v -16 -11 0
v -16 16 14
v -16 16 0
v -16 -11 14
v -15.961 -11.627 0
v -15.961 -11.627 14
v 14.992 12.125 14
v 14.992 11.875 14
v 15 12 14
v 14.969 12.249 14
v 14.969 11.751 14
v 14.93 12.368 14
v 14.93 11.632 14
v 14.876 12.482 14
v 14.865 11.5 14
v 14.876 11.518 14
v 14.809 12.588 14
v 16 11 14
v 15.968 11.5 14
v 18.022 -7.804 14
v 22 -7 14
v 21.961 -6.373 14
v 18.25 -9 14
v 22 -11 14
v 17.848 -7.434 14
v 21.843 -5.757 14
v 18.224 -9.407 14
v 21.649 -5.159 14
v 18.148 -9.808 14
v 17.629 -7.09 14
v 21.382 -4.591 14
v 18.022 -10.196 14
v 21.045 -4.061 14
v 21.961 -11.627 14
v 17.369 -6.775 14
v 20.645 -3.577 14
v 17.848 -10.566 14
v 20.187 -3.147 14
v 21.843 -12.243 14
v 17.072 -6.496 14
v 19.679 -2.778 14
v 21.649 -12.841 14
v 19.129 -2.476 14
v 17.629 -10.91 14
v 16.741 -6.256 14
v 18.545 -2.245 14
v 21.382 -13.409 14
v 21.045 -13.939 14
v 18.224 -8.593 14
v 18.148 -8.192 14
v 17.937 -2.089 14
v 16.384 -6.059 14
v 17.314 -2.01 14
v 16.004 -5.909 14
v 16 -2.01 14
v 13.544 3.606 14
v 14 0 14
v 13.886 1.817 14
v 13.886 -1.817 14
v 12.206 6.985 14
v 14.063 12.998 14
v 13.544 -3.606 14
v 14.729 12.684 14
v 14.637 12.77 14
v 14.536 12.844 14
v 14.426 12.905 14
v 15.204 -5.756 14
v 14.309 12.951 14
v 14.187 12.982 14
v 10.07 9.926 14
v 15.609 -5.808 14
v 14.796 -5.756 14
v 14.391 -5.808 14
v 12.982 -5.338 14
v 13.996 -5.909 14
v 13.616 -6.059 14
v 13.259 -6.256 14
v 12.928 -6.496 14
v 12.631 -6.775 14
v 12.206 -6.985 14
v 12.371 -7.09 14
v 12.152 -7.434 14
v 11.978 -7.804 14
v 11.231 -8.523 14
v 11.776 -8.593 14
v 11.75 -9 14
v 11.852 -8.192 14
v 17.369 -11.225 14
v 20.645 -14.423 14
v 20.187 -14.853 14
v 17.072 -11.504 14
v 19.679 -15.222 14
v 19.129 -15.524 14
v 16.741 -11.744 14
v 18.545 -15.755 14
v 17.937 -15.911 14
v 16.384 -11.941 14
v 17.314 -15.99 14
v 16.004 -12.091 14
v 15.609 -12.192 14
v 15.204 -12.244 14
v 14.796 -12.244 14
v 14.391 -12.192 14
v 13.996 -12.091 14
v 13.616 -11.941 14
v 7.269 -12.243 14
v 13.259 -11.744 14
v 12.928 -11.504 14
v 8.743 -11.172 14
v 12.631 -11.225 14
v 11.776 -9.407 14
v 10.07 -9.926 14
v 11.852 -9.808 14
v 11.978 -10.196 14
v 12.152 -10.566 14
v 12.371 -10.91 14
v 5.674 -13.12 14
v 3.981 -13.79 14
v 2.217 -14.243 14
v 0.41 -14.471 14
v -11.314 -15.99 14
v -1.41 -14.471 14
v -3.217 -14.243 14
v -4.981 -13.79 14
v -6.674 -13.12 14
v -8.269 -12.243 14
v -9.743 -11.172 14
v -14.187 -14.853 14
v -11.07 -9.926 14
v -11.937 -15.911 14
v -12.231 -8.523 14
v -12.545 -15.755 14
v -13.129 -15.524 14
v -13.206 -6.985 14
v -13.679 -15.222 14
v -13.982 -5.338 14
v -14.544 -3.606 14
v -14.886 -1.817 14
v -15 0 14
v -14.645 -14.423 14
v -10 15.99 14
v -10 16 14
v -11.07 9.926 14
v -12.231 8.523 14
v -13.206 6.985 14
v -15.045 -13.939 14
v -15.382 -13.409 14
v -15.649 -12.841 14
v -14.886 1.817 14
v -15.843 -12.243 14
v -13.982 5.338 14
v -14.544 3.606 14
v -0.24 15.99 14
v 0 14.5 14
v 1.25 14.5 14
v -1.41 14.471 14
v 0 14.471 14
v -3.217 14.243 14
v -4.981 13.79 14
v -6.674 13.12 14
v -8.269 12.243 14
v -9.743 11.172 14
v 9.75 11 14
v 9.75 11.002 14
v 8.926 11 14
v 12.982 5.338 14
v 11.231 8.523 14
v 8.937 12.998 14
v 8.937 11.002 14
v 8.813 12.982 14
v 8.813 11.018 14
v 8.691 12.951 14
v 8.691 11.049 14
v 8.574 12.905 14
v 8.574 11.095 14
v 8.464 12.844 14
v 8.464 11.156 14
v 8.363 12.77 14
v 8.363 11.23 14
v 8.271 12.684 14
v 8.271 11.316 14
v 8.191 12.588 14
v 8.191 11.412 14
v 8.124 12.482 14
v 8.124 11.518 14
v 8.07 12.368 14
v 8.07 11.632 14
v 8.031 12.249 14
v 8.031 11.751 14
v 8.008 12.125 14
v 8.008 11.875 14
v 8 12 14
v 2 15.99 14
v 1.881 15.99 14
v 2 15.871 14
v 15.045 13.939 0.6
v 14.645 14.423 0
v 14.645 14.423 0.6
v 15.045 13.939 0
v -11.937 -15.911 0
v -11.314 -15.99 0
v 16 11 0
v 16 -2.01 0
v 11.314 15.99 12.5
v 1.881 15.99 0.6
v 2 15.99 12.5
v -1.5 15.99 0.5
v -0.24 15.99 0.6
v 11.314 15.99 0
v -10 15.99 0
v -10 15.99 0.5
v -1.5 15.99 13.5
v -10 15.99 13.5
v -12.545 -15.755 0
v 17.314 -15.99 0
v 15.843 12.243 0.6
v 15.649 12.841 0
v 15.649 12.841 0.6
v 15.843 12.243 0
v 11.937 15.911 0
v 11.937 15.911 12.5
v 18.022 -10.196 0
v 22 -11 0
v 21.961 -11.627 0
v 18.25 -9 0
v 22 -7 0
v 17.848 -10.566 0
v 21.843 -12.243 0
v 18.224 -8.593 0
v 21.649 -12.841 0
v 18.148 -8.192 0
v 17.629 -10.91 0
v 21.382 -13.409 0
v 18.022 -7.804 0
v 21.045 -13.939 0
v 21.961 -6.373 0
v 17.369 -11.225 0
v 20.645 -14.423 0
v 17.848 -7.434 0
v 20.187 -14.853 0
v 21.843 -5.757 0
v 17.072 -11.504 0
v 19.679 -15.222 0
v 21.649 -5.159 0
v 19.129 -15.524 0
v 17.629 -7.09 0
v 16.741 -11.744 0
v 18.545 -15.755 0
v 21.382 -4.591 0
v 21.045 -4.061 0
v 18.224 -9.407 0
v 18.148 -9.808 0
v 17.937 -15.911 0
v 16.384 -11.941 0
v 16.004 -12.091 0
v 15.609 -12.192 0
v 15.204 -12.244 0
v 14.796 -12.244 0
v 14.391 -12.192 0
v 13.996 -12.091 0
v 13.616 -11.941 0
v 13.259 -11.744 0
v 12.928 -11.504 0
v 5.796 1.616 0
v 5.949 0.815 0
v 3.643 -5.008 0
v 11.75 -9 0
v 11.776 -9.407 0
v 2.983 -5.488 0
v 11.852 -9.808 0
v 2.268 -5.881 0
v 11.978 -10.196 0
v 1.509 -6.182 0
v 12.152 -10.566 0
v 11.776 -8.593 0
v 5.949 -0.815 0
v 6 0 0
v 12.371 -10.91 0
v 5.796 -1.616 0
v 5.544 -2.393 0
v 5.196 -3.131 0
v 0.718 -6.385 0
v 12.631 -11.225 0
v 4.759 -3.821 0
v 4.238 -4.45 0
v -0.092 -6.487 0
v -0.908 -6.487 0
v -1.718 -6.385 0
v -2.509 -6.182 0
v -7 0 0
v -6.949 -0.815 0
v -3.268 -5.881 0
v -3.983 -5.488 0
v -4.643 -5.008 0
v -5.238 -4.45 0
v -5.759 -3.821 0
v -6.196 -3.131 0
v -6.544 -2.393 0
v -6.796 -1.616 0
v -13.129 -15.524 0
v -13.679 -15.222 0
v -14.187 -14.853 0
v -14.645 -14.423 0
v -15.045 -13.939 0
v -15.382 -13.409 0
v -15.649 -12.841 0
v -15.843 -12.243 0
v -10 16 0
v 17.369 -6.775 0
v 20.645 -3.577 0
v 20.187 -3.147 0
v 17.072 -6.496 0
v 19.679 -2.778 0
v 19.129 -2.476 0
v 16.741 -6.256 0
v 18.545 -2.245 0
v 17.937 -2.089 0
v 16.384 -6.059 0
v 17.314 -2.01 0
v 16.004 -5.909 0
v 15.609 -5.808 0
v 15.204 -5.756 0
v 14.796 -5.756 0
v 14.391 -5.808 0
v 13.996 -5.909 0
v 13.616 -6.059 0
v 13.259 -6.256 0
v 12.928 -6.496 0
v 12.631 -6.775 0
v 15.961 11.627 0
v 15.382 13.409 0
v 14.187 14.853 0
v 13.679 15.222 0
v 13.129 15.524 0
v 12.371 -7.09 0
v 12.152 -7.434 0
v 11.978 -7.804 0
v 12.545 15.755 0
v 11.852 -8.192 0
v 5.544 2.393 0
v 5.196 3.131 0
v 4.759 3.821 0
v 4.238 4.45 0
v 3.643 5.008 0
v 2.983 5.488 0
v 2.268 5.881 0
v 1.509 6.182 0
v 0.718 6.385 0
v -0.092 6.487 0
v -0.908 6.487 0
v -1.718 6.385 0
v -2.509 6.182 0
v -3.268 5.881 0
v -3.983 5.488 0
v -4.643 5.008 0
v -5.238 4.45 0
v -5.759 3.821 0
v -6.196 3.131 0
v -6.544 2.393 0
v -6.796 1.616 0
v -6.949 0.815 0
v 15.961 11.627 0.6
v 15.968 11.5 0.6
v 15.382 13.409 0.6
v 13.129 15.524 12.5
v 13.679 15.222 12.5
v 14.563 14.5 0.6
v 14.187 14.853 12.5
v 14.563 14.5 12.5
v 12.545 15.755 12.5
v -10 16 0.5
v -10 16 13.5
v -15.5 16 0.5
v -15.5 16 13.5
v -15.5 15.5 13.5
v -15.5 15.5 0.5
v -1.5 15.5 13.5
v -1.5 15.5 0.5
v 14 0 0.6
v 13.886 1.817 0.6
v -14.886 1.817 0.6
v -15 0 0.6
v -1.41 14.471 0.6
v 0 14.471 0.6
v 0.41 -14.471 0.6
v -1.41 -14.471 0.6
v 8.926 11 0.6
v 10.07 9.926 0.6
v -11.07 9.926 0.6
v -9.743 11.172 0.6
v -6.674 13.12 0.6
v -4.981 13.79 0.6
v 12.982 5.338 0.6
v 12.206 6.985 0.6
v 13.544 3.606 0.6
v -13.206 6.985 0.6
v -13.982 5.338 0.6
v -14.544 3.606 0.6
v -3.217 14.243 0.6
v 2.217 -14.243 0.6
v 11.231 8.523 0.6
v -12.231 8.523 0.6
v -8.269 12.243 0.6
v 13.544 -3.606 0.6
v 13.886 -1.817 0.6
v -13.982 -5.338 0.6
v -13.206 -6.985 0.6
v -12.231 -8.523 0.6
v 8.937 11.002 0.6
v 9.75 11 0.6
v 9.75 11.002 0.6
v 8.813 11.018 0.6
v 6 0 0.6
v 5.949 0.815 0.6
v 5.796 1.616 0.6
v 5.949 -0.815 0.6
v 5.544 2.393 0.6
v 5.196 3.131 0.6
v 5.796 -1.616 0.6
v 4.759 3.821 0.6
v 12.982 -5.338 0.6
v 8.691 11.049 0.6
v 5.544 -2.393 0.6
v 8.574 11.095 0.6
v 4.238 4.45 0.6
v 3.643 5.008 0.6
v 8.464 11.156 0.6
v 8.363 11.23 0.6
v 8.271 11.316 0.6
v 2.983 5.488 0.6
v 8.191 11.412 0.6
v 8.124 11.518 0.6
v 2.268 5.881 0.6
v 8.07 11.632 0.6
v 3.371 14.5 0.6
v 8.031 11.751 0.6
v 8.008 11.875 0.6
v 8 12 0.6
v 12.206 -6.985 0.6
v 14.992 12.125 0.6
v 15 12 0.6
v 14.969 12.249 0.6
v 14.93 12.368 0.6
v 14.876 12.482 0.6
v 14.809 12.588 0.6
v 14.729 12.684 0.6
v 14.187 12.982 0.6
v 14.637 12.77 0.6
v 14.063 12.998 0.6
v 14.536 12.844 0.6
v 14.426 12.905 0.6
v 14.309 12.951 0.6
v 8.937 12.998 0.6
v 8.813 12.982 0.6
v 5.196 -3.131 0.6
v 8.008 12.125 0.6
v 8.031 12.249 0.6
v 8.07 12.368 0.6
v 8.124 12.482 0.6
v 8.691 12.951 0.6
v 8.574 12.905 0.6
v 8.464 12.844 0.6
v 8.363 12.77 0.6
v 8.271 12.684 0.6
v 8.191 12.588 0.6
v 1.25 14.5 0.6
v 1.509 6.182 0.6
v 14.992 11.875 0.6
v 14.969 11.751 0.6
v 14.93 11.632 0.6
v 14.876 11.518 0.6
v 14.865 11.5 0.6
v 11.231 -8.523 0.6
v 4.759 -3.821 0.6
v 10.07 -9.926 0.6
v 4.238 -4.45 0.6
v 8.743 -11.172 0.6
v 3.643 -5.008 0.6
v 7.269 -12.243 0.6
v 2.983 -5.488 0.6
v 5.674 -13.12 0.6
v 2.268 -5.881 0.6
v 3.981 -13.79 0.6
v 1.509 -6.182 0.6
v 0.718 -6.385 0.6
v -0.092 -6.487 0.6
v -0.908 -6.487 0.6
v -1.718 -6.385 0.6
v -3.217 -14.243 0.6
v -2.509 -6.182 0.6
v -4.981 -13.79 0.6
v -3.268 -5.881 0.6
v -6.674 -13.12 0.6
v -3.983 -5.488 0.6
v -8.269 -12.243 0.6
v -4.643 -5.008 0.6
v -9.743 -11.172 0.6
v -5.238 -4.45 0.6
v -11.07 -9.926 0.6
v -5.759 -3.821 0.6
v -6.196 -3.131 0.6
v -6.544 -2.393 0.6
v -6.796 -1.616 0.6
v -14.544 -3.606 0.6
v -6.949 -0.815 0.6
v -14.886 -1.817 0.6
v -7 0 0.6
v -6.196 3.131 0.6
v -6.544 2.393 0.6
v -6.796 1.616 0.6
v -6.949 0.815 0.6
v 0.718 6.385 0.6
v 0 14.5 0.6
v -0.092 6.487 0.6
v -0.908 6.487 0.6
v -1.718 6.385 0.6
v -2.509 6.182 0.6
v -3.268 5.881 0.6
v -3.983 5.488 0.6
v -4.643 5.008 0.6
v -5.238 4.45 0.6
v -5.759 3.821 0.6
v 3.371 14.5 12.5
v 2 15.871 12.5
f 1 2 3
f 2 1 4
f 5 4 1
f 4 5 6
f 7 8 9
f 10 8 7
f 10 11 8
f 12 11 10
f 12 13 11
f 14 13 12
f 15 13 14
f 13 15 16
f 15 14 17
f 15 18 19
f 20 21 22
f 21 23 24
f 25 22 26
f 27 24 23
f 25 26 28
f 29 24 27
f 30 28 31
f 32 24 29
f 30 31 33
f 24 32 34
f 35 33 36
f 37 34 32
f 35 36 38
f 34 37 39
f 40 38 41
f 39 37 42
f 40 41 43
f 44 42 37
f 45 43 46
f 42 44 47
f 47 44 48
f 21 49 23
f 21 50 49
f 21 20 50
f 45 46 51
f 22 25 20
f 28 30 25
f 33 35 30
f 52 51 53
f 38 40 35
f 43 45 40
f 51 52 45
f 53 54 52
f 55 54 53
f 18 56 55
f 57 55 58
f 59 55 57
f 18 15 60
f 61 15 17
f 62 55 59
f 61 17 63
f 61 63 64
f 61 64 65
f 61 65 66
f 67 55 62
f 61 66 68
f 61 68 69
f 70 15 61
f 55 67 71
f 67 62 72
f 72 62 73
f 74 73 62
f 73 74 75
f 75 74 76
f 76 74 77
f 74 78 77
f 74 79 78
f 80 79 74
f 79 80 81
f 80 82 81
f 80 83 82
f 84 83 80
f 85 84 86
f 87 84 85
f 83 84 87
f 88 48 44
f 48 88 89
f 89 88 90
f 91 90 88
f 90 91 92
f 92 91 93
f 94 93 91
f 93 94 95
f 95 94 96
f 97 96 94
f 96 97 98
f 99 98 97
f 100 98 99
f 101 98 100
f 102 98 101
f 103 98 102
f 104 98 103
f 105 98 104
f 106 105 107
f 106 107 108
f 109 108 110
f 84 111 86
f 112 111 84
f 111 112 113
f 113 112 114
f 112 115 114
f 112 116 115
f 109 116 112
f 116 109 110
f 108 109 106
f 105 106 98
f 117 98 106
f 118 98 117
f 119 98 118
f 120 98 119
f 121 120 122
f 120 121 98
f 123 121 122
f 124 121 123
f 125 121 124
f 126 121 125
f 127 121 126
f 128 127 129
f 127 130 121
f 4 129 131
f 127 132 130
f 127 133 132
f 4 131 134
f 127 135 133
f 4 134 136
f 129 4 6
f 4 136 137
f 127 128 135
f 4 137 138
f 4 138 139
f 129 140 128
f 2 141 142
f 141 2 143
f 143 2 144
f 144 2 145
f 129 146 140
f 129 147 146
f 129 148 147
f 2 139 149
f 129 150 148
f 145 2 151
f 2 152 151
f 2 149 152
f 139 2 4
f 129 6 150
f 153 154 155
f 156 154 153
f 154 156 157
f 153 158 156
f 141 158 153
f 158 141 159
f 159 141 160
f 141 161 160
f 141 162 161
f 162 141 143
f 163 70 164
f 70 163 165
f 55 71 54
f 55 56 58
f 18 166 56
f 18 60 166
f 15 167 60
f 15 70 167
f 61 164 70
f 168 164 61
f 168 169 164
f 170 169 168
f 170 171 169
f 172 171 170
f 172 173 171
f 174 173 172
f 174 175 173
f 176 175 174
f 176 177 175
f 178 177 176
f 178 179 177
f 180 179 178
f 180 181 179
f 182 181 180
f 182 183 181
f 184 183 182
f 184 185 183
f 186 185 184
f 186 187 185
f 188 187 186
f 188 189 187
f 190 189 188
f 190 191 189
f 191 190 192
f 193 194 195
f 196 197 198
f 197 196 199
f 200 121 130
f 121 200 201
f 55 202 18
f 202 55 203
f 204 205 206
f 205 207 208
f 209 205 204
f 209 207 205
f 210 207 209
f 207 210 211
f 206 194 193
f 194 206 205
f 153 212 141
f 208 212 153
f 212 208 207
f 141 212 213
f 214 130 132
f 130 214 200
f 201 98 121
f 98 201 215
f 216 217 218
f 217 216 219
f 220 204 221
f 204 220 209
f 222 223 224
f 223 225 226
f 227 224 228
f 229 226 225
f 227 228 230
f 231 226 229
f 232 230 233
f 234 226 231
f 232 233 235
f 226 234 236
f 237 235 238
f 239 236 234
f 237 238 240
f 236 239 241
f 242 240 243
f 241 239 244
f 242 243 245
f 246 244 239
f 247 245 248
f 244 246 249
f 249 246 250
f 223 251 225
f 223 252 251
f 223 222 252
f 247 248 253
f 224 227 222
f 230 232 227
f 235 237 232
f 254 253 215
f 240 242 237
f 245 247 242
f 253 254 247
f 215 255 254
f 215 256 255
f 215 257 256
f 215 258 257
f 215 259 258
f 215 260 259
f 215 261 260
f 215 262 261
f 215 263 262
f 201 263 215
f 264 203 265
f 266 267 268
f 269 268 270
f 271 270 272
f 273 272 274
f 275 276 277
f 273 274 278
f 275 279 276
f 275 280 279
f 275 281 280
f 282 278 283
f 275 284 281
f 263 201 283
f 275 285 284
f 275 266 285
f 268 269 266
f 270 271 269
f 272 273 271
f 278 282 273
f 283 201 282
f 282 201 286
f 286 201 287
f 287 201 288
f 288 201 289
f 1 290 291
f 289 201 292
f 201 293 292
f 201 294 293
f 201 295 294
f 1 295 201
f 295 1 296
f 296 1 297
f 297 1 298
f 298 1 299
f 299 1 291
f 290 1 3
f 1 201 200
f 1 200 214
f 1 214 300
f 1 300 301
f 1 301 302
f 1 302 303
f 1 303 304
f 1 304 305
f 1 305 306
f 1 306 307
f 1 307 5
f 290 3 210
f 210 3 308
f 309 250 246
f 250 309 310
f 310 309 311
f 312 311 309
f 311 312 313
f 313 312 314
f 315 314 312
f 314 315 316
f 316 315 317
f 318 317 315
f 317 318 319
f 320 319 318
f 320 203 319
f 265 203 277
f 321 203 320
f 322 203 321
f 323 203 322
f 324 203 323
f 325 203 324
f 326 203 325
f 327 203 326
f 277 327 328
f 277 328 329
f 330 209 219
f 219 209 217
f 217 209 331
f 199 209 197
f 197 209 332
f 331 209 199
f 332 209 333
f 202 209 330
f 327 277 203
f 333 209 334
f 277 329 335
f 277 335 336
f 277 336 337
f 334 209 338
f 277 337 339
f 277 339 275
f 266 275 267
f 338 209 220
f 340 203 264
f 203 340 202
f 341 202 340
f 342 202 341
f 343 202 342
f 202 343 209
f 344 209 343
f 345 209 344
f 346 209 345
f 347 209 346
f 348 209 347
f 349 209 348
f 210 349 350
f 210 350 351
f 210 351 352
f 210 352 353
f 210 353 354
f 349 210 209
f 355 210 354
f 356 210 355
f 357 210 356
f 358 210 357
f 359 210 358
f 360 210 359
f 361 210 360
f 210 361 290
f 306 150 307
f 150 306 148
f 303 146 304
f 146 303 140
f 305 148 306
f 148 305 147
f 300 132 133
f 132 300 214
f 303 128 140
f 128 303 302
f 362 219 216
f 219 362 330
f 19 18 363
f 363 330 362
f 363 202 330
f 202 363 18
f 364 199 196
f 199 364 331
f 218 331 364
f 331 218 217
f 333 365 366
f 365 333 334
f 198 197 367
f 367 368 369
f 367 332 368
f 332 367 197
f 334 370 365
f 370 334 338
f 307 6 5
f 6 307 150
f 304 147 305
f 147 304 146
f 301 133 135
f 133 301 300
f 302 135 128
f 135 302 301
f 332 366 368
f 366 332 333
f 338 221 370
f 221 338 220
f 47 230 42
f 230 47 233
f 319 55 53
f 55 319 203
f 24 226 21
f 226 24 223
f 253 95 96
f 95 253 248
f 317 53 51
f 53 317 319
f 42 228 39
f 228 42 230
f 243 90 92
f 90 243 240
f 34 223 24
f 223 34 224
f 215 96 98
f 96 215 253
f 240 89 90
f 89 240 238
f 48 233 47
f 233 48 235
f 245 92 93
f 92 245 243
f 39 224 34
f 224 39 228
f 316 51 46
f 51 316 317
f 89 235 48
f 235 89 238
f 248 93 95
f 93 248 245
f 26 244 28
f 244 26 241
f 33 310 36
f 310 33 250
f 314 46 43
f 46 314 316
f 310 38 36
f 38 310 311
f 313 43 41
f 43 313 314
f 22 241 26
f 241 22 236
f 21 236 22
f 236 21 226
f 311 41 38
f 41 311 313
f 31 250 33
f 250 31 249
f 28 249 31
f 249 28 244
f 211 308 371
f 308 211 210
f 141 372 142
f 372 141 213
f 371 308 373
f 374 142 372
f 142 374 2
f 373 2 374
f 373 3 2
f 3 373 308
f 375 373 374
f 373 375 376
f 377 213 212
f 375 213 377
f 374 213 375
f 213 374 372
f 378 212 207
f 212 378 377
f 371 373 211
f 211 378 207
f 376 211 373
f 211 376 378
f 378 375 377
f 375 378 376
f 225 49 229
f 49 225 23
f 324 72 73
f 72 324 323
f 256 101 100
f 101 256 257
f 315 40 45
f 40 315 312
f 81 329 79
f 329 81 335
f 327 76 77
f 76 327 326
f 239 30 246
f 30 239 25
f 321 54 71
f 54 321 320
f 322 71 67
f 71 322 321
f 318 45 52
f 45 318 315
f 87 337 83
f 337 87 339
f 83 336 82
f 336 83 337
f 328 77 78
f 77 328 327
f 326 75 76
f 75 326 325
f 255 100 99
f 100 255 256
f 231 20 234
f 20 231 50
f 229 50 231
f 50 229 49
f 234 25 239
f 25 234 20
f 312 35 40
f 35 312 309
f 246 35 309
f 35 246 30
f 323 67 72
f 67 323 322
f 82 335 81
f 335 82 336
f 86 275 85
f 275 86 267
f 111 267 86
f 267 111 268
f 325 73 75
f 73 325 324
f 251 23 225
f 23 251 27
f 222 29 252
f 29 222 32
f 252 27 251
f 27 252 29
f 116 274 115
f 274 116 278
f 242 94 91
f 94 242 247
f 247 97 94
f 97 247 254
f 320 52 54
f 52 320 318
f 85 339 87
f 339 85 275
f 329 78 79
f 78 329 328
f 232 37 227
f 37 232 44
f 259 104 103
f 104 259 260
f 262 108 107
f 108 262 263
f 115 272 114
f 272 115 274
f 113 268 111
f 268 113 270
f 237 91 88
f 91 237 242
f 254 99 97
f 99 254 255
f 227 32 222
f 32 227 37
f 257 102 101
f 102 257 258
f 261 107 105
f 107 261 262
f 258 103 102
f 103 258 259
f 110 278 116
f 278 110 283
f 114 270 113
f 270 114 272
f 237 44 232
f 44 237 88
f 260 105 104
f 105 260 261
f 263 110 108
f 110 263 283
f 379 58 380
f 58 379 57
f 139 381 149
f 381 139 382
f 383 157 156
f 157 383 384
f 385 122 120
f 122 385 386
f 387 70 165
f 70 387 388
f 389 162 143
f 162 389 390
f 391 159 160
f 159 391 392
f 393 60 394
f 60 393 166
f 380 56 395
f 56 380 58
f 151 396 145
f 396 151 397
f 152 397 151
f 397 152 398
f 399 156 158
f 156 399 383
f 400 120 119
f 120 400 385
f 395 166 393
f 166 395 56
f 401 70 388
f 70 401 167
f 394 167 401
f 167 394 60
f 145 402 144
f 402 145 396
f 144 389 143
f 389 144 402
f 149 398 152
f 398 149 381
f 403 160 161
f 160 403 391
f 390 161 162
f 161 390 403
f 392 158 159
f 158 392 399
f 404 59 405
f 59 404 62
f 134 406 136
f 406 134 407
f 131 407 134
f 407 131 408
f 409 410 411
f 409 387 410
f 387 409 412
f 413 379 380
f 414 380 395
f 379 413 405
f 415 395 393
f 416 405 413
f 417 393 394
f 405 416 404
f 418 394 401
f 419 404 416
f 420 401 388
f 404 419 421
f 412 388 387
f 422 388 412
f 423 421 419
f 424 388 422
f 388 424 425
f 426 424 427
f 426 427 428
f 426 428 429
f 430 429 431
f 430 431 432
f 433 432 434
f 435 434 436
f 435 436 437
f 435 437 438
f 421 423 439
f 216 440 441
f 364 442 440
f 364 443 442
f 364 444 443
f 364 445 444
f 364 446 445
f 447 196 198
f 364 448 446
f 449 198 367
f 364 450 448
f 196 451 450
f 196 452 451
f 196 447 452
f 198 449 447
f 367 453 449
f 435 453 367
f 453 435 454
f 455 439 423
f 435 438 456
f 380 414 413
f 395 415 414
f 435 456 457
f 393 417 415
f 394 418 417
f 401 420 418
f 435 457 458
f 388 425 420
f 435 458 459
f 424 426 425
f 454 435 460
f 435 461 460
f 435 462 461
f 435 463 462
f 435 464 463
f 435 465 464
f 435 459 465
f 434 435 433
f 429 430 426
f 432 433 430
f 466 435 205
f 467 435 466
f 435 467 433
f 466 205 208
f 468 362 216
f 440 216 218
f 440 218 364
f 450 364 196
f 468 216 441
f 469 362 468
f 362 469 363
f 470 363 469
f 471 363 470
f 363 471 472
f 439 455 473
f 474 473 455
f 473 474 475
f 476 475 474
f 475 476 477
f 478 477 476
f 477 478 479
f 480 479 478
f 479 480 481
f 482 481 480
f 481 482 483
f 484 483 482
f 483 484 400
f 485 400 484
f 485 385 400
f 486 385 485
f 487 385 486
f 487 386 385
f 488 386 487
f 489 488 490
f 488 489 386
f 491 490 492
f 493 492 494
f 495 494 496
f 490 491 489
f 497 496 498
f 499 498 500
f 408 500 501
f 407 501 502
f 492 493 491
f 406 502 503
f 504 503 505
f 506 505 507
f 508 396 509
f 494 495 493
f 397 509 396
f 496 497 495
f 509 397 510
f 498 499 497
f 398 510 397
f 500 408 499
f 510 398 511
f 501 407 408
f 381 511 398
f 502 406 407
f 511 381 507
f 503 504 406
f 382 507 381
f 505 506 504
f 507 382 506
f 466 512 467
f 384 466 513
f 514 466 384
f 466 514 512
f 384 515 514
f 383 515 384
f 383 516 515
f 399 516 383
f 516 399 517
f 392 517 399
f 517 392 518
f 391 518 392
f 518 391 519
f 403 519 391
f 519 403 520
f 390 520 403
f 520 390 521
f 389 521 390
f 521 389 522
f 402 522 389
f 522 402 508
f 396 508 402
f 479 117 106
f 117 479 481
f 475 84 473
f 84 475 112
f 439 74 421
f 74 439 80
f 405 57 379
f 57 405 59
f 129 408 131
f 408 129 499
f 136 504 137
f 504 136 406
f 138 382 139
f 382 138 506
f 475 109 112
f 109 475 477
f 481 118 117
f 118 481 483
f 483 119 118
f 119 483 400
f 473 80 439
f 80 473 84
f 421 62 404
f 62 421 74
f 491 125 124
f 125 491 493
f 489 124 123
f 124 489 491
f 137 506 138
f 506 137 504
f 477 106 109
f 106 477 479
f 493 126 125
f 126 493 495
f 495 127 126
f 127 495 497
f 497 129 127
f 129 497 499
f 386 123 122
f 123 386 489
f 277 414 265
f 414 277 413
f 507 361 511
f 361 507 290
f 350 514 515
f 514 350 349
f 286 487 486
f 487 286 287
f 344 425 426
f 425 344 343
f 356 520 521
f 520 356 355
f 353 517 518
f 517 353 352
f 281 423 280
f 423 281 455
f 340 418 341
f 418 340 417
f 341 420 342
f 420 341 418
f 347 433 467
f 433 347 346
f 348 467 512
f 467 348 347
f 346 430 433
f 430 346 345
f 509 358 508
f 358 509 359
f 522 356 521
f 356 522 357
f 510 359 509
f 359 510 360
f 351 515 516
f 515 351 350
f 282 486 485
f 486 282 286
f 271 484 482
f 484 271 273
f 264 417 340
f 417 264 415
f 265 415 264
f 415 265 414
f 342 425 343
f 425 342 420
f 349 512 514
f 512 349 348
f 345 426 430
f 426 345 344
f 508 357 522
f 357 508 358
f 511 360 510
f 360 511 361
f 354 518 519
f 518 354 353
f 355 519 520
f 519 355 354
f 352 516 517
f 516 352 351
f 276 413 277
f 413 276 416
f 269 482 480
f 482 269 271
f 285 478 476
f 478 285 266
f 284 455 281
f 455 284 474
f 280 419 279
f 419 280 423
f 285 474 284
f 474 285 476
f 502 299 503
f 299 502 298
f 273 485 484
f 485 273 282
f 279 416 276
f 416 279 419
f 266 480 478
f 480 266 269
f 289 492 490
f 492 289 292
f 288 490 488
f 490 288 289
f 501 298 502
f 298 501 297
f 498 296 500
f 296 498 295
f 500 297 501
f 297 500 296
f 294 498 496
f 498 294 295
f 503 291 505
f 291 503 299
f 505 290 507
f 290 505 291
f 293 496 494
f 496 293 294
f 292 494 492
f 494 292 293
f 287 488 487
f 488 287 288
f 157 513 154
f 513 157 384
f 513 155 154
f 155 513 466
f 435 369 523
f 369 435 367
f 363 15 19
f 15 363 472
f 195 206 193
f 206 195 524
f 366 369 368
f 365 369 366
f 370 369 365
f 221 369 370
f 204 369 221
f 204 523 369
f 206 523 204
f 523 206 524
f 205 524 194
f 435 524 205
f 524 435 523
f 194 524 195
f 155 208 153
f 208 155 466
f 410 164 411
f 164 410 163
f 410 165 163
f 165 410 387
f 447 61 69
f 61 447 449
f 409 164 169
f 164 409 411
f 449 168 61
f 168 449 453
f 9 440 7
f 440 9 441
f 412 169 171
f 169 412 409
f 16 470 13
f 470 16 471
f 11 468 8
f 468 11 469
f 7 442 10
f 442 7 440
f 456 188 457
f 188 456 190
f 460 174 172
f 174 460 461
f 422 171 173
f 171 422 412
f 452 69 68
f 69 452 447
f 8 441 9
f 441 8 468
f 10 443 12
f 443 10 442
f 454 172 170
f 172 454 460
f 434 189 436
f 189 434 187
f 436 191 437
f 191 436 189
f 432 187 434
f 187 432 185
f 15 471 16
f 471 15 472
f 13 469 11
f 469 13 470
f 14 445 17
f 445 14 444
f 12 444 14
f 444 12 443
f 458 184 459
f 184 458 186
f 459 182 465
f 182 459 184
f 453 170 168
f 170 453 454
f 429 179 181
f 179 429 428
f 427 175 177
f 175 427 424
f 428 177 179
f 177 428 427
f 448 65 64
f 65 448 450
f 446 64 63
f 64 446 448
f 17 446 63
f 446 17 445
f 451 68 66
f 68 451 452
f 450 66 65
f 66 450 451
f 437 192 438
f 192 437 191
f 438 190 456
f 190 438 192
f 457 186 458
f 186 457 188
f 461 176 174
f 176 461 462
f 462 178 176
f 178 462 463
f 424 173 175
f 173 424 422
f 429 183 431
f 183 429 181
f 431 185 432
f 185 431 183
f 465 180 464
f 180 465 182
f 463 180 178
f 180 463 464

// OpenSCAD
$fn = 50;


union() {
	difference() {
		union() {
			translate(v = [0, 0, 0]) {
				rotate(a = [0, 0, 0]) {
					hull() {
						translate(v = [-11.0000000000, 11.0000000000, 0]) {
							rotate(a = [0, 0, 0]) {
								translate(v = [0, 0, 0]) {
									rotate(a = [0, 0, 0]) {
										cylinder(h = 14, r = 5);
									}
								}
							}
						}
						translate(v = [11.0000000000, 11.0000000000, 0]) {
							rotate(a = [0, 0, 0]) {
								translate(v = [0, 0, 0]) {
									rotate(a = [0, 0, 0]) {
										cylinder(h = 14, r = 5);
									}
								}
							}
						}
						translate(v = [-11.0000000000, -11.0000000000, 0]) {
							rotate(a = [0, 0, 0]) {
								translate(v = [0, 0, 0]) {
									rotate(a = [0, 0, 0]) {
										cylinder(h = 14, r = 5);
									}
								}
							}
						}
						translate(v = [11.0000000000, -11.0000000000, 0]) {
							rotate(a = [0, 0, 0]) {
								translate(v = [0, 0, 0]) {
									rotate(a = [0, 0, 0]) {
										cylinder(h = 14, r = 5);
									}
								}
							}
						}
					}
				}
			}
			translate(v = [7.5000000000, -9.0000000000, 0]) {
				rotate(a = [0, 0, 0]) {
					hull() {
						translate(v = [-9.5000000000, 2.0000000000, 0]) {
							rotate(a = [0, 0, 0]) {
								translate(v = [0, 0, 0]) {
									rotate(a = [0, 0, 0]) {
										cylinder(h = 14, r = 5);
									}
								}
							}
						}
						translate(v = [9.5000000000, 2.0000000000, 0]) {
							rotate(a = [0, 0, 0]) {
								translate(v = [0, 0, 0]) {
									rotate(a = [0, 0, 0]) {
										cylinder(h = 14, r = 5);
									}
								}
							}
						}
						translate(v = [-9.5000000000, -2.0000000000, 0]) {
							rotate(a = [0, 0, 0]) {
								translate(v = [0, 0, 0]) {
									rotate(a = [0, 0, 0]) {
										cylinder(h = 14, r = 5);
									}
								}
							}
						}
						translate(v = [9.5000000000, -2.0000000000, 0]) {
							rotate(a = [0, 0, 0]) {
								translate(v = [0, 0, 0]) {
									rotate(a = [0, 0, 0]) {
										cylinder(h = 14, r = 5);
									}
								}
							}
						}
					}
				}
			}
			translate(v = [-16.0000000000, 10.0000000000, 0]) {
				rotate(a = [0, 0, 0]) {
					cube(size = [6, 6, 14]);
				}
			}
		}
		union() {
			translate(v = [-15.5000000000, 15.5000000000, 0.5000000000]) {
				rotate(a = [0, 0, 0]) {
					cube(size = [14, 0.5000000000, 13.0000000000]);
				}
			}
			translate(v = [15.0000000000, -9.0000000000, -125.0000000000]) {
				rotate(a = [0, 0, 0]) {
					cylinder(h = 250, r = 3.2500000000);
				}
			}
			translate(v = [-0.5000000000, 0.0000000000, 0.6000000000]) {
				rotate(a = [0, 0, 0]) {
					cylinder(h = 16.4000000000, r = 14.5000000000);
				}
			}
			translate(v = [-0.5000000000, 0.0000000000, -7.0000000000]) {
				rotate(a = [0, 0, 0]) {
					cylinder(h = 14, r = 6.5000000000);
				}
			}
			translate(v = [0.0000000000, 11.5000000000, 0.6000000000]) {
				rotate(a = [0, 0, 0]) {
					cube(size = [16.0000000000, 3, 16.4000000000]);
				}
			}
			translate(v = [2.0000000000, 11.5000000000, 12.5000000000]) {
				rotate(a = [0, 0, 0]) {
					cube(size = [14.0000000000, 6, 1.5000000000]);
				}
			}
			translate(v = [-3.0000000000, 18.7500000000, 0.6000000000]) {
				rotate(a = [0, 0, -45]) {
					cube(size = [10, 1.5000000000, 16.4000000000]);
				}
			}
			translate(v = [2.2500000000, 11.0000000000, 0.6000000000]) {
				rotate(a = [0, 0, 0]) {
					cube(size = [7.5000000000, 2, 13.4000000000]);
				}
			}
		}
	}
	union() {
		translate(v = [11.5000000000, 12, 0]) {
			rotate(a = [0, 0, 0]) {
				hull() {
					translate(v = [2.5000000000, 0, 0]) {
						rotate(a = [0, 0, 0]) {
							translate(v = [0, 0, 0]) {
								rotate(a = [0, 0, 0]) {
									cylinder(h = 14, r = 1.0000000000);
								}
							}
						}
					}
					translate(v = [-2.5000000000, 0, 0]) {
						rotate(a = [0, 0, 0]) {
							translate(v = [0, 0, 0]) {
								rotate(a = [0, 0, 0]) {
									cylinder(h = 14, r = 1.0000000000);
								}
							}
						}
					}
				}
			}
		}
	}
}
